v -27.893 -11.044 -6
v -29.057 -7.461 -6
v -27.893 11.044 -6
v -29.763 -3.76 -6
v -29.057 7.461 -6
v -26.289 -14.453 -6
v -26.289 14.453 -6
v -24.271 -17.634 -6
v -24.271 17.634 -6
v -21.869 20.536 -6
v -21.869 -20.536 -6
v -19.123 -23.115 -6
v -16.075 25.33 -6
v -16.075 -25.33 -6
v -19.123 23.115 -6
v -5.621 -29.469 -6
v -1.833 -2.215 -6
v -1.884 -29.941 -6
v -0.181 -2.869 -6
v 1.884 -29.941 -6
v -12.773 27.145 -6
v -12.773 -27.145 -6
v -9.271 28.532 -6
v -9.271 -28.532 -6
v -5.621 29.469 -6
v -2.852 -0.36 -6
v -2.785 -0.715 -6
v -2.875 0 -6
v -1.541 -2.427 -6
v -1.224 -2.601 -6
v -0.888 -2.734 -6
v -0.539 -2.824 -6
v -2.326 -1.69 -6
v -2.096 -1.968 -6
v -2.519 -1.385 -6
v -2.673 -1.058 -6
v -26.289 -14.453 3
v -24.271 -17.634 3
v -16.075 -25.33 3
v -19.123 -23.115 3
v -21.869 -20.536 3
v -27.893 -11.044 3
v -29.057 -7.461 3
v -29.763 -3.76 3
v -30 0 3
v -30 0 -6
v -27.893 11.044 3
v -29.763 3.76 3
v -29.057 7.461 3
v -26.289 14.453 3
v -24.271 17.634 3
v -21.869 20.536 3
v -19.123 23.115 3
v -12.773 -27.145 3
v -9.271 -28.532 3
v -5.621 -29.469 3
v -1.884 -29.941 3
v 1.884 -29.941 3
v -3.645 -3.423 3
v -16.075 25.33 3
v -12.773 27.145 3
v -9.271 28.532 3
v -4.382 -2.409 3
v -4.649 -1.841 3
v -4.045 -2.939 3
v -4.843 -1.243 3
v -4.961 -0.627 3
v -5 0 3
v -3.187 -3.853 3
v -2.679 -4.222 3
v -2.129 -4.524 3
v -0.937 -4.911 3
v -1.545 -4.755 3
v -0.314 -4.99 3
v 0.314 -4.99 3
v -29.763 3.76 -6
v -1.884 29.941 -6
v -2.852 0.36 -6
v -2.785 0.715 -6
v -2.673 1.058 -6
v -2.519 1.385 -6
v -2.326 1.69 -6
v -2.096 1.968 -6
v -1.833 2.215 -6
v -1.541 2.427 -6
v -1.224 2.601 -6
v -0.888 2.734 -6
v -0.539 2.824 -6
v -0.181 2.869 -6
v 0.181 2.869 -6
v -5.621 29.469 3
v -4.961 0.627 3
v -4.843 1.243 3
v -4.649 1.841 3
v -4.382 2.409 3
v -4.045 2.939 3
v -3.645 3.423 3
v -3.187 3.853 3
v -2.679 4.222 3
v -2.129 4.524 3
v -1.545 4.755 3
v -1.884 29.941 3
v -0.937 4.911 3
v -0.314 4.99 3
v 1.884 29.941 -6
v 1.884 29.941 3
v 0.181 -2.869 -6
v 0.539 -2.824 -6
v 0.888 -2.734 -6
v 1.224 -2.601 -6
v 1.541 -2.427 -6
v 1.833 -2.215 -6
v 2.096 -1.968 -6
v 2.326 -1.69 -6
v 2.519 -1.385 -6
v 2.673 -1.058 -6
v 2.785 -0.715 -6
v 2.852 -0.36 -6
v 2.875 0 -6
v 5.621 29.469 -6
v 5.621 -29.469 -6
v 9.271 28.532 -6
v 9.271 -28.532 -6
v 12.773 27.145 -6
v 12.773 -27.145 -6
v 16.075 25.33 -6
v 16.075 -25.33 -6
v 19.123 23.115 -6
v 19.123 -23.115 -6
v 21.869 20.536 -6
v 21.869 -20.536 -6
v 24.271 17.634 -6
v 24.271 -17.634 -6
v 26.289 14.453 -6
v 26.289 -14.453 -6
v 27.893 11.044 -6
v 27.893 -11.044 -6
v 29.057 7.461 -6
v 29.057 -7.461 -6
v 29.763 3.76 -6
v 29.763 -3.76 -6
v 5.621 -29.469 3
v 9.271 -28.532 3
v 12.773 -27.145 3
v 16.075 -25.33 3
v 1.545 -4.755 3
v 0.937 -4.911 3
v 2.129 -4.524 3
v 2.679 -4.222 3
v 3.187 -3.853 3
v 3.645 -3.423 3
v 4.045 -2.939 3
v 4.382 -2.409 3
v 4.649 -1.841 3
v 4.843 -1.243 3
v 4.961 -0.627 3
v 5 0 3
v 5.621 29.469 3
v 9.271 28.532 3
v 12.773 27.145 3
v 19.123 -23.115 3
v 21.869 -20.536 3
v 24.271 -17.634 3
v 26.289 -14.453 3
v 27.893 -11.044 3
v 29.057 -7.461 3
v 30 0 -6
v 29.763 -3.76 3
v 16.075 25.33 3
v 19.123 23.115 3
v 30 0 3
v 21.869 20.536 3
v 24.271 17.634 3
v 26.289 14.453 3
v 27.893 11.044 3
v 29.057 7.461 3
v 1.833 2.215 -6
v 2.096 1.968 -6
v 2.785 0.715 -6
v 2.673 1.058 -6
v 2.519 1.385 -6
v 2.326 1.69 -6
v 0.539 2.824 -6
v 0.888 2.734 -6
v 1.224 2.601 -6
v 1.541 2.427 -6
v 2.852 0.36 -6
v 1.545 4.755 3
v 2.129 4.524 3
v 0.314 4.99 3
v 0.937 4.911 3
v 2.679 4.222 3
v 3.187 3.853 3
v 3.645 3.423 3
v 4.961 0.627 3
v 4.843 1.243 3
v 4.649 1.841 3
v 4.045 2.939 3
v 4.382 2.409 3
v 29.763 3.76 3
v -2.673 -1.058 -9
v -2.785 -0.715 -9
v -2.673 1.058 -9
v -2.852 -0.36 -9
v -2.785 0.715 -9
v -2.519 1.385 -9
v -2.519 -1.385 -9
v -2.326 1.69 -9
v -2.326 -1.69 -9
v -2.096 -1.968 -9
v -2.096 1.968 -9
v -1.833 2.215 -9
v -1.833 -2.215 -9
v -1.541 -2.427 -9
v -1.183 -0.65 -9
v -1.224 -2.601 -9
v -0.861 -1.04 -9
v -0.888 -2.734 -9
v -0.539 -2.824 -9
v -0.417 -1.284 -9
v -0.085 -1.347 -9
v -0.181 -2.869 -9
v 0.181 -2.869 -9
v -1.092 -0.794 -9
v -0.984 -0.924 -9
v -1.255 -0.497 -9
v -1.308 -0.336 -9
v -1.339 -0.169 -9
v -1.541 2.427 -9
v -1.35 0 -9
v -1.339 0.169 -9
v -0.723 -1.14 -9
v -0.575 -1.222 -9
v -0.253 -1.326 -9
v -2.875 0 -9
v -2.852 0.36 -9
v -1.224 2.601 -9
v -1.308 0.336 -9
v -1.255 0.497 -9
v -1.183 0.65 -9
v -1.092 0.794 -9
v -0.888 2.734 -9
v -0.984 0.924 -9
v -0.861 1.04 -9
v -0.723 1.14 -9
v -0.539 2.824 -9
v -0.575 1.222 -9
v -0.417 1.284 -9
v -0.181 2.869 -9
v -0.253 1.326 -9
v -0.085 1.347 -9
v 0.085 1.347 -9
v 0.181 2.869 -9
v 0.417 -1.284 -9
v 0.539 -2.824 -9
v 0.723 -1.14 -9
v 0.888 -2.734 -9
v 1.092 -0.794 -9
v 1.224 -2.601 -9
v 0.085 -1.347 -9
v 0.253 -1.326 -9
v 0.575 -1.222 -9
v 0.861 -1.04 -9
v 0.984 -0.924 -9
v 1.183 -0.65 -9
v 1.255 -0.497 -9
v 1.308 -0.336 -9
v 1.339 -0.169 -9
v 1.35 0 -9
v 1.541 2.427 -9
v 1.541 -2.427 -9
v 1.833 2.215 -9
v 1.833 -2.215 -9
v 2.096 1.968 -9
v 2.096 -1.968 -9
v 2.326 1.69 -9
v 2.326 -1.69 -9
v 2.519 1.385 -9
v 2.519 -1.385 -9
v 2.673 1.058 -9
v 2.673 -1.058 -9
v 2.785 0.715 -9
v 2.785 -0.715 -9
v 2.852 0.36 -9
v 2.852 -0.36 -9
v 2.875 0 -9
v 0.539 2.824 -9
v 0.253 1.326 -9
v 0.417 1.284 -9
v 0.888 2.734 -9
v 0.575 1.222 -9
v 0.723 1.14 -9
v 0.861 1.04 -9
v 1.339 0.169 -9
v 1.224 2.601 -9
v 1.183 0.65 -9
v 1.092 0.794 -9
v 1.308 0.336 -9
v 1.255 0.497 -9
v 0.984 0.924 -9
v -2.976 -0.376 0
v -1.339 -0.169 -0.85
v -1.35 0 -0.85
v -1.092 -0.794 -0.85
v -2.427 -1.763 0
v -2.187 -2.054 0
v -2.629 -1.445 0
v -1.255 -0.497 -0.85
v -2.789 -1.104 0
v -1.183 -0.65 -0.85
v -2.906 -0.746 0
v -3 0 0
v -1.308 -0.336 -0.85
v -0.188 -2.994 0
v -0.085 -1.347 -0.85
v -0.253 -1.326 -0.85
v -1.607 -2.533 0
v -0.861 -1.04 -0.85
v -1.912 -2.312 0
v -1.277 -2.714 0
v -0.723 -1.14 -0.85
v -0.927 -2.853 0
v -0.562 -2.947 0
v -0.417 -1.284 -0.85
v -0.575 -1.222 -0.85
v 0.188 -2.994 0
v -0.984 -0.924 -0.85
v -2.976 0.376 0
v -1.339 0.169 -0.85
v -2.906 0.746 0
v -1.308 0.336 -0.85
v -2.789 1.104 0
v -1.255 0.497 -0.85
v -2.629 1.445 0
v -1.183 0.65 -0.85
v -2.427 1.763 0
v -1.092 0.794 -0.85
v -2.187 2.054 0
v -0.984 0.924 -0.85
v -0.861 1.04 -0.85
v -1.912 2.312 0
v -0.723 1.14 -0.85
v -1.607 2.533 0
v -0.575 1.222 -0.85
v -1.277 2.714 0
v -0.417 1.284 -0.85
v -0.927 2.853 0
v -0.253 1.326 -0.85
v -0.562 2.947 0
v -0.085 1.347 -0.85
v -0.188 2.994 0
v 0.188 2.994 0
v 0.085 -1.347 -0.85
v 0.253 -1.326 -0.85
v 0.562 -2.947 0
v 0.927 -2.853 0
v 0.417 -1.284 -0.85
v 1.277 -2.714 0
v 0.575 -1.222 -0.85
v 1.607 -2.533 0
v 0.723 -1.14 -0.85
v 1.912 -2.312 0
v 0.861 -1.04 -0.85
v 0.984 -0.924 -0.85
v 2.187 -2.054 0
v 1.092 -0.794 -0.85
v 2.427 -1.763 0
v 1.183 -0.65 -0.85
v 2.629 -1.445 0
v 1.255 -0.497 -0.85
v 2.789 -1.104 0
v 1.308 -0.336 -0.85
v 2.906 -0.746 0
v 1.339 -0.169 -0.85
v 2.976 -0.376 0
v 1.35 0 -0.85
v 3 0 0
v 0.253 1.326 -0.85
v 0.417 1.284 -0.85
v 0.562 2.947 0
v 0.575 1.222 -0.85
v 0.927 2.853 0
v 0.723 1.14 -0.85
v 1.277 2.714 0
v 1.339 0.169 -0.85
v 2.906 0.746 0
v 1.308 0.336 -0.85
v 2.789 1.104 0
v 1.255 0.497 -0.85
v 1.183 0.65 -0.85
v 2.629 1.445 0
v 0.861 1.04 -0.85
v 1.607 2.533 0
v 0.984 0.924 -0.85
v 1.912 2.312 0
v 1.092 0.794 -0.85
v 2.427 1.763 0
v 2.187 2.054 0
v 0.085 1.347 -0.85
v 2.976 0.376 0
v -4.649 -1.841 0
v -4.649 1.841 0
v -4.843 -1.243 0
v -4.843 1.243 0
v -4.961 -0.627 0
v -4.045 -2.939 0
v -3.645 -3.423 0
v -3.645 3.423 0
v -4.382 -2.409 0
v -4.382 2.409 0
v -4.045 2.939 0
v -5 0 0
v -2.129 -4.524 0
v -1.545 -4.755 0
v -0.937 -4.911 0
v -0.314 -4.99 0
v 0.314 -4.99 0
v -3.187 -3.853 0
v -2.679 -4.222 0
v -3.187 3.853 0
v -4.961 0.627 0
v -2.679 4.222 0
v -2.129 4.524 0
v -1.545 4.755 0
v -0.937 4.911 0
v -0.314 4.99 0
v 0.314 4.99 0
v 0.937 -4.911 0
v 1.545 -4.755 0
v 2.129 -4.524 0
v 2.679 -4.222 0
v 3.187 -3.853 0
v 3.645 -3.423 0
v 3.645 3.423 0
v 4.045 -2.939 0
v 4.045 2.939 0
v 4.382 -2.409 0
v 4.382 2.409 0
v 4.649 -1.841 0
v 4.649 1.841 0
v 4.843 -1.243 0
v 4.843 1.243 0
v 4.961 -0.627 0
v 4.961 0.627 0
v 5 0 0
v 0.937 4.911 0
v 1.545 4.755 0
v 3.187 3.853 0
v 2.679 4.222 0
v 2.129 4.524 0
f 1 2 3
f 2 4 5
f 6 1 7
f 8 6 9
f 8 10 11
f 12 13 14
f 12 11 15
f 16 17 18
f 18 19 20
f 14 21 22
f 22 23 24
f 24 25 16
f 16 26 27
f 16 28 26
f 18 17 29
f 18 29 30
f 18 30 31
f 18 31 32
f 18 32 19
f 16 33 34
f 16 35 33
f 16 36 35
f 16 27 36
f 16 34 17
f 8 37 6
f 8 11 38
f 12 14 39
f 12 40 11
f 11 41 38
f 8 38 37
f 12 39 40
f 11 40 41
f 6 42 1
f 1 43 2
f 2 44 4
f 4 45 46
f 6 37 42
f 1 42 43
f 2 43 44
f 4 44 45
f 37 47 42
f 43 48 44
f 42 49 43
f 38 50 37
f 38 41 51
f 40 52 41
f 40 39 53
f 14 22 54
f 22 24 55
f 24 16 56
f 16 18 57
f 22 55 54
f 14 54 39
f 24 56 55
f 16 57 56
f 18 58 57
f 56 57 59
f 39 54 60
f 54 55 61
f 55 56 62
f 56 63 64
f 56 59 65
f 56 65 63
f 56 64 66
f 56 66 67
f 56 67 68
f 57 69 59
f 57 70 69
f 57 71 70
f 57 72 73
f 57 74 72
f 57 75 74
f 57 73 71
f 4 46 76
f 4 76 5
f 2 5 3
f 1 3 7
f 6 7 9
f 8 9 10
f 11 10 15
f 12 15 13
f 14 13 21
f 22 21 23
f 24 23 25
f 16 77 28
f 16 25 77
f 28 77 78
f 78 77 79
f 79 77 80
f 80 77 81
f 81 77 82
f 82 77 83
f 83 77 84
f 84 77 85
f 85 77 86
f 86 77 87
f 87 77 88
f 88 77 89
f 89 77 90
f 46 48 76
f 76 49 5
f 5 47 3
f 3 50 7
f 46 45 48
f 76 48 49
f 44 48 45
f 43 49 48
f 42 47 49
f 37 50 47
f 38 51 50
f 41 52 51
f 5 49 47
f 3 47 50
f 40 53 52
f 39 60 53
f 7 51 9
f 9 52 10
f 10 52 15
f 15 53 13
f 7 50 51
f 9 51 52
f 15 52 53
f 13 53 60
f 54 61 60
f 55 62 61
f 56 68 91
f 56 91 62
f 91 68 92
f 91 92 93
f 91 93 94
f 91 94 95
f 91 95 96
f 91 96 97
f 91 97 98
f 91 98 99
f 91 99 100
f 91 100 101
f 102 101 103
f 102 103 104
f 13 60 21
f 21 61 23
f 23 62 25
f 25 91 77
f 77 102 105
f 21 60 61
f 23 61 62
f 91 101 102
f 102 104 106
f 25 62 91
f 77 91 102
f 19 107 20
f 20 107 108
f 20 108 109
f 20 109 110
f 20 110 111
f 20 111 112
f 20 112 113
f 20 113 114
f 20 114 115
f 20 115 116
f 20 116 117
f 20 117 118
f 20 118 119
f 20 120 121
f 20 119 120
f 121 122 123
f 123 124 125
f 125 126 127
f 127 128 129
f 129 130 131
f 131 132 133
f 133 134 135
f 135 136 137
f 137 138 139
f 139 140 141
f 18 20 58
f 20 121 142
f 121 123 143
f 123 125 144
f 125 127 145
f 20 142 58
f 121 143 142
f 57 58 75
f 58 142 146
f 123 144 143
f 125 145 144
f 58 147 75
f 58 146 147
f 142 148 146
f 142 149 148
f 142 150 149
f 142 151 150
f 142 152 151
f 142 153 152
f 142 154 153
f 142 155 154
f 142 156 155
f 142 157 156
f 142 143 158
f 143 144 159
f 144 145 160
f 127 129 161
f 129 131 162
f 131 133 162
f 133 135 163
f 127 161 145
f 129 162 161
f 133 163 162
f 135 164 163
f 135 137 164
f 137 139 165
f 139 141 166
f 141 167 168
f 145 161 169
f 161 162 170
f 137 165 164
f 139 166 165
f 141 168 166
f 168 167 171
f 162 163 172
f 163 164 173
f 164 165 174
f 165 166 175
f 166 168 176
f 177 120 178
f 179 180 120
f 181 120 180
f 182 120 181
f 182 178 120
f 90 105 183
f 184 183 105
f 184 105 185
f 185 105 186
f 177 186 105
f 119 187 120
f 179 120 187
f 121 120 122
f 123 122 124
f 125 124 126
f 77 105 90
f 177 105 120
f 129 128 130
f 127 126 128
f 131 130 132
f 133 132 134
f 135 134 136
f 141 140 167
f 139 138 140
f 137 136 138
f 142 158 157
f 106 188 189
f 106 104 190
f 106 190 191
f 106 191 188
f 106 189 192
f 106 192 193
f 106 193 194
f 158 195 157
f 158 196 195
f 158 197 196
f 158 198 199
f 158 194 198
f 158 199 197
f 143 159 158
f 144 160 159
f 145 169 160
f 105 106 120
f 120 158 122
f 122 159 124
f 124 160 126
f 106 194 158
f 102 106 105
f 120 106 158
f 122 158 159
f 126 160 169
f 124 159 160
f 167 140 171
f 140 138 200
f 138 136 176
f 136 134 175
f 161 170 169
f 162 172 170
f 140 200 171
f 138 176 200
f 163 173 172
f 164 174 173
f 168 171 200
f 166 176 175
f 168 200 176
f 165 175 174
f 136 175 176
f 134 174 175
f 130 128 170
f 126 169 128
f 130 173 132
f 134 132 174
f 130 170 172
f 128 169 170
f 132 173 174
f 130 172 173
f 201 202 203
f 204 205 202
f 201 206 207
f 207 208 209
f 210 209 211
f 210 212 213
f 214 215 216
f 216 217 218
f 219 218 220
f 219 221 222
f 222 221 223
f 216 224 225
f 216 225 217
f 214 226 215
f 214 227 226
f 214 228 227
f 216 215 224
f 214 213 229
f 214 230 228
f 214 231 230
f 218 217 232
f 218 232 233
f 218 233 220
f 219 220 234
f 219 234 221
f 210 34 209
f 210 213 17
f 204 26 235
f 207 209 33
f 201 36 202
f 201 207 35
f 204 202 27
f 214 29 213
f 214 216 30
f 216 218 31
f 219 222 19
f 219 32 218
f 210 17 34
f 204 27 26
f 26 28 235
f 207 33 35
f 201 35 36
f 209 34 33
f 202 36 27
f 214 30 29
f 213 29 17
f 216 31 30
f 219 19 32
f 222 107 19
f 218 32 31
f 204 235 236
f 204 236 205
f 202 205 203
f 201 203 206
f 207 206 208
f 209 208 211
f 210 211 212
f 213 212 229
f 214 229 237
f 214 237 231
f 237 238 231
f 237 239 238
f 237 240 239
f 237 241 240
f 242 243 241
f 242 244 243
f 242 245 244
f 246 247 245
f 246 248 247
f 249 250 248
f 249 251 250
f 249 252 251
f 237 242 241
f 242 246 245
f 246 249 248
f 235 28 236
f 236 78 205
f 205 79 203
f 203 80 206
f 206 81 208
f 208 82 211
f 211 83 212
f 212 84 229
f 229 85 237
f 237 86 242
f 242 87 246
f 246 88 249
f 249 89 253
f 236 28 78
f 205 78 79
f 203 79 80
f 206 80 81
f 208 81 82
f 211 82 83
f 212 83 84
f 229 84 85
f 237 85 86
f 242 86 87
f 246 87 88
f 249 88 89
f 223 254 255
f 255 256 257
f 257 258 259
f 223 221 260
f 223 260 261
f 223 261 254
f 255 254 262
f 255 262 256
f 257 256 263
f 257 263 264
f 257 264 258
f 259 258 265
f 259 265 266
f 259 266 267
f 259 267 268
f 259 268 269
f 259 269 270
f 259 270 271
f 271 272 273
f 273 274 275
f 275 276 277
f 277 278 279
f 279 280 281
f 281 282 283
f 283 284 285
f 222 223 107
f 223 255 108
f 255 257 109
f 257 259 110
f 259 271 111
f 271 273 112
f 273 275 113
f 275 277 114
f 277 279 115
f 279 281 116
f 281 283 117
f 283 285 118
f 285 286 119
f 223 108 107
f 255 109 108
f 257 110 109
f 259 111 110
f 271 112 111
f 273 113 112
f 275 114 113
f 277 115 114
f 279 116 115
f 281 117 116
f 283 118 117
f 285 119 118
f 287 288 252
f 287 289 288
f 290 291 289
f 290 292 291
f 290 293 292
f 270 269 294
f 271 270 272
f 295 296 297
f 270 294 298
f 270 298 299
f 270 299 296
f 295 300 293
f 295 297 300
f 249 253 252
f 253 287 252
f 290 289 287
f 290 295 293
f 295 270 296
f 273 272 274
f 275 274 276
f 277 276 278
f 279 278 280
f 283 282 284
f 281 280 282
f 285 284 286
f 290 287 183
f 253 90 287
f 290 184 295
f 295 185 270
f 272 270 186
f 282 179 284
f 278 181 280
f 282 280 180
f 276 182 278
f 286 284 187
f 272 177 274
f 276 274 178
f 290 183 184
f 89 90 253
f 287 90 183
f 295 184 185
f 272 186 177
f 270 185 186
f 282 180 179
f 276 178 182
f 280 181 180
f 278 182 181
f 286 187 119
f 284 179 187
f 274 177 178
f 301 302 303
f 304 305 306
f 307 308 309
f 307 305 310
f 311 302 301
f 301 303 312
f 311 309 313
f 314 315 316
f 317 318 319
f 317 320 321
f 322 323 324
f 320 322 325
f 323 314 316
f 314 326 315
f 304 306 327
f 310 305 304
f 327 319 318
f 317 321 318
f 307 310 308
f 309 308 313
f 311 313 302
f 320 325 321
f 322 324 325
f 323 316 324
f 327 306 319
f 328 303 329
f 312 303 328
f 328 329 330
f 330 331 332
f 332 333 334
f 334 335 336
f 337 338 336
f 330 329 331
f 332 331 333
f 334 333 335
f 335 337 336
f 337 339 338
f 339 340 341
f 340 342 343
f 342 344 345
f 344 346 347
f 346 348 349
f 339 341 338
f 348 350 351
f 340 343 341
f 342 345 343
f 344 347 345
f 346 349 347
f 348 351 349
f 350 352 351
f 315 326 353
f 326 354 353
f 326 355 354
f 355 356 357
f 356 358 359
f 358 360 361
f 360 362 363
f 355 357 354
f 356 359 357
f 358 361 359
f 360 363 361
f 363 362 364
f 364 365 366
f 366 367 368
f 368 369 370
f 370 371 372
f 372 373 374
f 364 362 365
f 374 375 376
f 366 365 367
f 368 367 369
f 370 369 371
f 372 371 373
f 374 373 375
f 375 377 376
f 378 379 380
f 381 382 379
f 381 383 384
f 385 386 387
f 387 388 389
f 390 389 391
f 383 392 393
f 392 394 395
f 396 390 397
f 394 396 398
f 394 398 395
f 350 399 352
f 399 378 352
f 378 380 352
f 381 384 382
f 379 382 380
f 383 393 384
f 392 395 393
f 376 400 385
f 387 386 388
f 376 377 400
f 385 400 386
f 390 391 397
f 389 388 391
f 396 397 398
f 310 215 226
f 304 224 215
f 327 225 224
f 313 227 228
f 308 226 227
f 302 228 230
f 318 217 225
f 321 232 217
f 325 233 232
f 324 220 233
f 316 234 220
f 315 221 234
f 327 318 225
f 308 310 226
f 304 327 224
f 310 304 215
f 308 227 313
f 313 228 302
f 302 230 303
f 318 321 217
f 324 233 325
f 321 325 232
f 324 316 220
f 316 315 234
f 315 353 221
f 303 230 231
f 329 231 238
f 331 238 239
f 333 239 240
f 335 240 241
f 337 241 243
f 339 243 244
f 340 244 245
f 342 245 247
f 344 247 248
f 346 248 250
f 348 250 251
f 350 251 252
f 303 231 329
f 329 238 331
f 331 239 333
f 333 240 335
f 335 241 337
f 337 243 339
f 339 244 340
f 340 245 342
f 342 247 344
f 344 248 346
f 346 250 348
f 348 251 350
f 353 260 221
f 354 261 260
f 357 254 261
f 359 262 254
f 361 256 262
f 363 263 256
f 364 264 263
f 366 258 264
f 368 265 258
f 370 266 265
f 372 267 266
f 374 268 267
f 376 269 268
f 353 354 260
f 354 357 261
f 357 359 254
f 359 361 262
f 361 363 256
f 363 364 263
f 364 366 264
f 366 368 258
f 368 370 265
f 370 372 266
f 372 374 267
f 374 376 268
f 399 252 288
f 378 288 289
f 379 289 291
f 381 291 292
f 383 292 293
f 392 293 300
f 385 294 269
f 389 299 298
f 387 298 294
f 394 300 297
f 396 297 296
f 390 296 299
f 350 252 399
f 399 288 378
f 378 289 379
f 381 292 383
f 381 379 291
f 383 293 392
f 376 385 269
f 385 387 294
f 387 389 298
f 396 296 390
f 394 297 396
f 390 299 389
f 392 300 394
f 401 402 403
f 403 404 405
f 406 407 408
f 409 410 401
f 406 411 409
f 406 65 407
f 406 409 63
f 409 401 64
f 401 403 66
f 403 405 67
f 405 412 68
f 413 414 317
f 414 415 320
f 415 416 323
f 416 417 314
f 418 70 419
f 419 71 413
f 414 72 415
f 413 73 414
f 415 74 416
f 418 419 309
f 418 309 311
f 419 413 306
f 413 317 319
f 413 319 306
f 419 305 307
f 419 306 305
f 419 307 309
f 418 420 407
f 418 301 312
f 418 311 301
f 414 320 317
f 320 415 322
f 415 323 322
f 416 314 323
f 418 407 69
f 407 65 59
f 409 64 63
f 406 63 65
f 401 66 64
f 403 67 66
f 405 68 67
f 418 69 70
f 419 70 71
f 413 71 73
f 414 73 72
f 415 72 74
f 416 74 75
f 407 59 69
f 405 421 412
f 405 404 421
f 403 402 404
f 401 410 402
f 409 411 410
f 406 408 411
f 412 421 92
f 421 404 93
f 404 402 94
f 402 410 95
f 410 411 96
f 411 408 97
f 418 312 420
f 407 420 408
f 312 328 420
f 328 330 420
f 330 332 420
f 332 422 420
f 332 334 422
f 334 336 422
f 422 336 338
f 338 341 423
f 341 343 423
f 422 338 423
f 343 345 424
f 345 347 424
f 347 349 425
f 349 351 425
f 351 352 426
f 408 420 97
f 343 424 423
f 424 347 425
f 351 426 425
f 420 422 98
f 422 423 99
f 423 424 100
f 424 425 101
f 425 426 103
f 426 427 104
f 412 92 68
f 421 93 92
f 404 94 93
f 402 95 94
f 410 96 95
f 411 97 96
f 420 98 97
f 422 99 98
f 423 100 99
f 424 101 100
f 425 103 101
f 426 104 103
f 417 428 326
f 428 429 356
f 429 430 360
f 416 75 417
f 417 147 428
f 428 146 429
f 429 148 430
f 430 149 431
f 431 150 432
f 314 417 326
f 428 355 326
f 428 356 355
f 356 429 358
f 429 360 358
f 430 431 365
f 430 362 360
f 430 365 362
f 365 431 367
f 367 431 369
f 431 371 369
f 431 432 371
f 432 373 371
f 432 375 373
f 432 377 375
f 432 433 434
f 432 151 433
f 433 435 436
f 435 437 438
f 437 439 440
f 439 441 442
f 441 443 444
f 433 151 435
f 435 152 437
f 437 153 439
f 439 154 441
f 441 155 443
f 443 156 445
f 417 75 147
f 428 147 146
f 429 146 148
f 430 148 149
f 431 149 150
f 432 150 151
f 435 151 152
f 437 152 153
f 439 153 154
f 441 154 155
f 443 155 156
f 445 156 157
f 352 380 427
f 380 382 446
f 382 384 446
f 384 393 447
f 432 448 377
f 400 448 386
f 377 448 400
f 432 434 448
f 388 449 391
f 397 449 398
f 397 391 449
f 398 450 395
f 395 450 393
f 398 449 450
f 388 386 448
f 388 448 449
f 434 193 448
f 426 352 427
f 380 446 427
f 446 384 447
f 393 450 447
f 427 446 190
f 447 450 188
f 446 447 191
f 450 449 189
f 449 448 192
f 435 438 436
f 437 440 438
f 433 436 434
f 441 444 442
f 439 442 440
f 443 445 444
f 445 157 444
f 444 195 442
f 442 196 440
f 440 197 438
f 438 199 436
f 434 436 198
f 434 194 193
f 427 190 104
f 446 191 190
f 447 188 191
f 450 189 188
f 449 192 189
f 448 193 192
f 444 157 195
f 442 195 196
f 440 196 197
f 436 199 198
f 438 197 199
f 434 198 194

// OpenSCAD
$fn = 50;

difference() {
	union() {
		translate(v = [0, 0, -6.0]) {
			cylinder(h = 9, r = 30.0);
		}
		#translate(v = [0, 0, -9.0]) {
			cylinder(h = 9, r = 2.875);
		}
	}
	union() {
		translate(v = [0, 0, 0]) {
			rotate(a = [0, 0, 0]) {
				difference() {
					union() {
						translate(v = [0, 0, -9.0]) {
							cylinder(h = 9, r = 1.0);
						}
						translate(v = [0, 0, -0.85]) {
							cylinder(h = 0.85, r1 = 1.35, r2 = 3.0);
						}
						translate(v = [0, 0, -9.0]) {
							cylinder(h = 9, r = 1.35);
						}
						translate(v = [0, 0, -9.0]) {
							cylinder(h = 9, r = 1.0);
						}
					}
					union();
				}
			}
		}
		#cylinder(h = 3, r = 5.0);
	}
}
